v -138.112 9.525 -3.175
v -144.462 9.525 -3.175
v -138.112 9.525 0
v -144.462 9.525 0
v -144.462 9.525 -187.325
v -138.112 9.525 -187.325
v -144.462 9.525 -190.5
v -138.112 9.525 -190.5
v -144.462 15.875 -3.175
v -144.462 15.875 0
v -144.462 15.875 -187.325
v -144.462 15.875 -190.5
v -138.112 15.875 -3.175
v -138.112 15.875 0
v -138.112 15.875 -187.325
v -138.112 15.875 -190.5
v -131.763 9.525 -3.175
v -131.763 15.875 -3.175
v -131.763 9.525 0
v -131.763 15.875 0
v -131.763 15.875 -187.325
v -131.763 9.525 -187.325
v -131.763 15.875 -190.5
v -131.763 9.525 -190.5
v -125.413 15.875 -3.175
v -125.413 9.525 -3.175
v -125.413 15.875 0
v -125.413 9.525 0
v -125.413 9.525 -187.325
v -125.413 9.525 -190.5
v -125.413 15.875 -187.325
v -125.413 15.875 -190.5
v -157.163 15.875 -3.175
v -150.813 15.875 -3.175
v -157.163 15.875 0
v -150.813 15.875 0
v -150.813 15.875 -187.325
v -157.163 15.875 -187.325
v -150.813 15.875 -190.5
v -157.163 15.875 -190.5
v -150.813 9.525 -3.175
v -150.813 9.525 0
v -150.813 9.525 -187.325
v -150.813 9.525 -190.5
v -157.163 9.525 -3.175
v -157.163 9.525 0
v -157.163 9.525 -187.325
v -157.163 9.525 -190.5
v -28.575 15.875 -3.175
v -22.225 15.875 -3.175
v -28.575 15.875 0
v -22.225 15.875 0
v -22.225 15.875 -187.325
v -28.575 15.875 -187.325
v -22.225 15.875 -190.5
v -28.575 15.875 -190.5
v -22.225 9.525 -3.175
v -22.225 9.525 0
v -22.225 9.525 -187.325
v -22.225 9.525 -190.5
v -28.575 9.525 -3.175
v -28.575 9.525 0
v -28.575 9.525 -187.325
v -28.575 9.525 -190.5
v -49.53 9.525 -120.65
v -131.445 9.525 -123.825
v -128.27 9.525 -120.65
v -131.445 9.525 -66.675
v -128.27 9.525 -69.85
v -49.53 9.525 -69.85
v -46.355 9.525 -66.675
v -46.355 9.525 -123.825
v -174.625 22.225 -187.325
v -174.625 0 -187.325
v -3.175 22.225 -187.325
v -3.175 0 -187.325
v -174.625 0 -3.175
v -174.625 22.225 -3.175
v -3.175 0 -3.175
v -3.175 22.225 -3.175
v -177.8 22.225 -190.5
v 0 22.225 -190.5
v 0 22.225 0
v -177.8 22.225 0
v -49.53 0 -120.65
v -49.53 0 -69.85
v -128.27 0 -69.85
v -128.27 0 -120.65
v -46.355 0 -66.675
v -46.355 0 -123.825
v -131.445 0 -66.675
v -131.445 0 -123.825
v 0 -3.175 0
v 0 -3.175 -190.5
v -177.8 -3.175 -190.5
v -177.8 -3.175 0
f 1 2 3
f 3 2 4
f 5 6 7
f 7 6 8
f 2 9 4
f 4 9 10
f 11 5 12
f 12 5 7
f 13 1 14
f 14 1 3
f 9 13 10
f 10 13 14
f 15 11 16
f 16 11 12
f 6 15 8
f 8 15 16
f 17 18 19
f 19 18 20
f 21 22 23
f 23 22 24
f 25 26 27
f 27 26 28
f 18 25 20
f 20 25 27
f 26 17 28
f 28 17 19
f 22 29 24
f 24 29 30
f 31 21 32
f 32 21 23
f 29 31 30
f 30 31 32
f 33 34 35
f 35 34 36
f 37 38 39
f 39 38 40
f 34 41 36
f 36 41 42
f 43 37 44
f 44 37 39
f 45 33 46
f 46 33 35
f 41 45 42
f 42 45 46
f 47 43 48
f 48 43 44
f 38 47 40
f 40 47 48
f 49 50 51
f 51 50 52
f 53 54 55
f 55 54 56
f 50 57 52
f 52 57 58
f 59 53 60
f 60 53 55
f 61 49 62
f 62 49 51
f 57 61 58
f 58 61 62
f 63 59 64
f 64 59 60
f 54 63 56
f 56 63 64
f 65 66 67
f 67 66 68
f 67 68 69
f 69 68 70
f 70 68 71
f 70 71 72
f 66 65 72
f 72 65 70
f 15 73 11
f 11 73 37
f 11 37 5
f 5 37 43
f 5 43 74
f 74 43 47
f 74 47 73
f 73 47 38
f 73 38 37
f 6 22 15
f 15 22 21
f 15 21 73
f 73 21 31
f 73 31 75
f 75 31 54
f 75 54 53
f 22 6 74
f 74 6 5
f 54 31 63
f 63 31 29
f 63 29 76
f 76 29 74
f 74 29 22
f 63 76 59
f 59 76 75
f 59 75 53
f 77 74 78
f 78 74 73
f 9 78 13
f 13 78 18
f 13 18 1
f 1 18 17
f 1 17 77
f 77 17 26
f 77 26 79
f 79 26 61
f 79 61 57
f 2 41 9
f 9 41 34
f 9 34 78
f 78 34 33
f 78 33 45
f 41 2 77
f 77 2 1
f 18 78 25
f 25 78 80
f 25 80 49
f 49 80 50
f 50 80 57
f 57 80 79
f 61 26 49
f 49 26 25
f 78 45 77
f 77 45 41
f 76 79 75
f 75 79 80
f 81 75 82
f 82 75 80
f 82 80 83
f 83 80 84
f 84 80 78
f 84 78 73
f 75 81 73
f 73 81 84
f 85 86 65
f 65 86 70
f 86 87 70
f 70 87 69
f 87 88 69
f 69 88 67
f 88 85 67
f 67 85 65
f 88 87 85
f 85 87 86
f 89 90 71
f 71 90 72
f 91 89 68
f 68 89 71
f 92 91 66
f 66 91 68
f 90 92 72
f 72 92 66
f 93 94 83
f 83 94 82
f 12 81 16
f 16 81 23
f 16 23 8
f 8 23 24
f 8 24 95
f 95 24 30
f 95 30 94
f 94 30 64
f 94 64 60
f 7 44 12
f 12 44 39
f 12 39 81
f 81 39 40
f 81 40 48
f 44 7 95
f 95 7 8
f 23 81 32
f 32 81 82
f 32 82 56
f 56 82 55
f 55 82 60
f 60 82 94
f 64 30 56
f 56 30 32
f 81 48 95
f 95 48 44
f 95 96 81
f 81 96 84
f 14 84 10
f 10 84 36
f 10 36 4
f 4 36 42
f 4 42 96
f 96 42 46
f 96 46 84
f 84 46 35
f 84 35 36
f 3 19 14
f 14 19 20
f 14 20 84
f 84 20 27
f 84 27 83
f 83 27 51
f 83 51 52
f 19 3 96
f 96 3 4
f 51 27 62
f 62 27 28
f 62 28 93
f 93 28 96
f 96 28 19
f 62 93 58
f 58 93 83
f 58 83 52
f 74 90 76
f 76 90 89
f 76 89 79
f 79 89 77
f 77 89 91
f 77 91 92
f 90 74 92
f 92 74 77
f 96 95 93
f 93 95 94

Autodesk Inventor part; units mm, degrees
ref_plane "YZ Plane" through (0, 0, 0) normal (1, 0, 0) x (0, 1, 0)
ref_plane "XZ Plane" through (0, 0, 0) normal (0, 1, 0) x (-1, 0, 0)
ref_plane "XY Plane" through (0, 0, 0) normal (0, 0, 1) x (1, 0, 0)
sketch "Sketch1" plane through (0, 0, 0) normal (0, 1, 0) x (-1, 0, 0)
  line L0 (0, 0) -> (177.8, 0)
  line L1 (177.8, 0) -> (177.8, -190.5)
  line L2 (177.8, -190.5) -> (0, -190.5)
  line L3 (0, -190.5) -> (0, 0)
  line L4 (114.3, -3.175) -> (114.3, -187.325)
  line L5 (174.625, -93.6625) -> (3.175, -96.8375)
  line L6 (128.27, -69.85) -> (49.53, -69.85)
  line L7 (49.53, -69.85) -> (49.53, -120.65)
  line L8 (49.53, -120.65) -> (128.27, -120.65)
  line L9 (128.27, -120.65) -> (128.27, -69.85)
  line L10 (128.27, -69.85) -> (49.53, -120.65) construction
  line L11 (49.53, -69.85) -> (128.27, -120.65) construction
  line L12 (131.445, -66.675) -> (46.355, -66.675)
  line L13 (46.355, -66.675) -> (46.355, -123.825)
  line L14 (46.355, -123.825) -> (131.445, -123.825)
  line L15 (131.445, -123.825) -> (131.445, -66.675)
  line L16 (131.445, -66.675) -> (46.355, -123.825) construction
  line L17 (46.355, -66.675) -> (131.445, -123.825) construction
  line L18 (3.175, -187.325) -> (174.625, -187.325)
  line L19 (174.625, -187.325) -> (174.625, -3.175)
  line L20 (174.625, -3.175) -> (3.175, -3.175)
  line L21 (3.175, -3.175) -> (3.175, -187.325)
  line L22 (3.175, -187.325) -> (174.625, -3.175) construction
  line L23 (174.625, -187.325) -> (3.175, -3.175) construction
  line L24 (174.625, -93.6625) -> (174.625, -187.325)
  line L25 (174.625, -140.4938) -> (158.75, -140.4938)
  line L26 (174.625, -93.6625) -> (174.625, -3.175)
  line L27 (174.625, -48.4188) -> (209.55, -48.4188)
  line L28 (209.55, -48.4188) -> (171.45, -48.4188)
  line L29 (171.45, -48.4188) -> (171.45, -140.4938)
  line L30 (171.45, -140.4938) -> (158.75, -140.4938)
  point P0 (88.9, -95.25)
  point P1 (88.9, -95.25)
  dimension "d0" = 177.8
  dimension "d1" = 190.5
  dimension "d2" = 78.74
  dimension "d3" = 50.8
  dimension "d4" = 85.09
  dimension "d5" = 57.15
  dimension "d6" = 171.45
  dimension "d7" = 184.15
  dimension "d18" = 15.875
  dimension "d22" = 38.1
  dimension "d23" = 92.075
  dimension "d48" = 3.175
extrude "Extrusion1" add sketch "Sketch1" against normal blind 3.175 contours L19 L5 L29 L28 | L28 L29 L5 L15 L12 L4 L20 L19 | L0 L1 L2 L3 | L19 L25 L29 L5 | L29 L25 L19 L18 L4 L14 L15 L5 | L4 L12 L13 L5 L21 L20 | L15 L14 L4 L8 L9 L5 | L5 L9 L6 L4 L12 L15 | L4 L6 L7 L5 L13 L12 | L9 L8 L4 L5 | L5 L4 L6 L9 | L18 L21 L5 L13 L14 L4 | L4 L5 L7 L6 | L4 L8 L7 L5 | L14 L13 L5 L7 L8 L4
extrude "Extrusion2" add sketch "Sketch1" along normal blind 9.525 contours L15 L14 L4 L8 L9 L5 | L5 L9 L6 L4 L12 L15 | L4 L6 L7 L5 L13 L12 | L9 L8 L4 L5 | L5 L4 L6 L9 | L4 L5 L7 L6 | L4 L8 L7 L5 | L14 L13 L5 L7 L8 L4
extrude "Extrusion3" cut sketch "Sketch1" along normal blind 9.525 contours L9 L8 L4 L5 | L5 L4 L6 L9 | L4 L5 L7 L6 | L4 L8 L7 L5
extrude "Extrusion4" cut sketch "Sketch1" along normal blind 9.525 contours L9 L8 L4 L5 | L5 L4 L6 L9 | L4 L5 L7 L6 | L4 L8 L7 L5
extrude "Extrusion5" add sketch "Sketch1" along normal blind 22.225
sketch "Sketch2" plane through (0, -3.175, -190.5) normal (0, 0, -1) x (-1, 0, 0)
  line L0 (177.8, 25.4) -> (177.8, 0) projected
  line L1 (177.8, 25.4) -> (123.825, 25.4)
  line L2 (123.825, 25.4) -> (123.825, 0)
  line L3 (0, 0) -> (177.8, 0) projected
  line L4 (177.8, 0) -> (177.8, 15.875)
  line L5 (177.8, 15.875) -> (123.825, 15.875)
  line L6 (177.8, 15.875) -> (153.9875, 15.875)
  line L7 (153.9875, 15.875) -> (141.2875, 15.875)
  line L8 (150.8125, 12.7) -> (157.1625, 12.7)
  line L9 (157.1625, 12.7) -> (157.1625, 19.05)
  line L10 (157.1625, 19.05) -> (150.8125, 19.05)
  line L11 (150.8125, 19.05) -> (150.8125, 12.7)
  line L12 (150.8125, 12.7) -> (157.1625, 19.05) construction
  line L13 (157.1625, 12.7) -> (150.8125, 19.05) construction
  line L14 (144.4625, 12.7) -> (138.1125, 12.7)
  line L15 (138.1125, 12.7) -> (138.1125, 19.05)
  line L16 (138.1125, 19.05) -> (144.4625, 19.05)
  line L17 (144.4625, 19.05) -> (144.4625, 12.7)
  line L18 (144.4625, 12.7) -> (138.1125, 19.05) construction
  line L19 (138.1125, 12.7) -> (144.4625, 19.05) construction
  line L20 (141.2875, 15.875) -> (127, 15.875)
  line L21 (127, 15.875) -> (25.4, 15.875)
  line L22 (141.2875, 15.875) -> (128.5875, 15.875)
  line L23 (125.4125, 12.7) -> (131.7625, 12.7)
  line L24 (131.7625, 12.7) -> (131.7625, 19.05)
  line L25 (131.7625, 19.05) -> (125.4125, 19.05)
  line L26 (125.4125, 19.05) -> (125.4125, 12.7)
  line L27 (125.4125, 12.7) -> (131.7625, 19.05) construction
  line L28 (131.7625, 12.7) -> (125.4125, 19.05) construction
  line L29 (22.225, 19.05) -> (28.575, 19.05)
  line L30 (28.575, 19.05) -> (28.575, 12.7)
  line L31 (28.575, 12.7) -> (22.225, 12.7)
  line L32 (22.225, 12.7) -> (22.225, 19.05)
  line L33 (22.225, 19.05) -> (28.575, 12.7) construction
  line L34 (28.575, 19.05) -> (22.225, 12.7) construction
  line L35 (0, 0) -> (0, 25.4) projected
  point P0 (0, 3.175)
  dimension "d25" = 15.875
  dimension "d27" = 12.7
  dimension "d28" = 6.35
  dimension "d29" = 6.35
  dimension "d30" = 6.35
  dimension "d31" = 6.35
  dimension "d32" = 14.2875
  dimension "d36" = 101.6
  dimension "d38" = 12.7
  dimension "d39" = 6.35
  dimension "d40" = 6.35
  dimension "d41" = 6.35
  dimension "d42" = 6.35
  dimension "d44" = 25.4
  dimension "d45" = 53.975
extrude "Extrusion6" cut sketch "Sketch2" against normal blind 190.5 contours L30 L31 L32 L29 | L9 L8 L11 L5 | L5 L11 L10 L9 | L26 L25 L24 L5 | L5 L24 L23 L26 | L17 L14 L15 L5 | L5 L15 L16 L17
properties part number "RCcar_full build"
